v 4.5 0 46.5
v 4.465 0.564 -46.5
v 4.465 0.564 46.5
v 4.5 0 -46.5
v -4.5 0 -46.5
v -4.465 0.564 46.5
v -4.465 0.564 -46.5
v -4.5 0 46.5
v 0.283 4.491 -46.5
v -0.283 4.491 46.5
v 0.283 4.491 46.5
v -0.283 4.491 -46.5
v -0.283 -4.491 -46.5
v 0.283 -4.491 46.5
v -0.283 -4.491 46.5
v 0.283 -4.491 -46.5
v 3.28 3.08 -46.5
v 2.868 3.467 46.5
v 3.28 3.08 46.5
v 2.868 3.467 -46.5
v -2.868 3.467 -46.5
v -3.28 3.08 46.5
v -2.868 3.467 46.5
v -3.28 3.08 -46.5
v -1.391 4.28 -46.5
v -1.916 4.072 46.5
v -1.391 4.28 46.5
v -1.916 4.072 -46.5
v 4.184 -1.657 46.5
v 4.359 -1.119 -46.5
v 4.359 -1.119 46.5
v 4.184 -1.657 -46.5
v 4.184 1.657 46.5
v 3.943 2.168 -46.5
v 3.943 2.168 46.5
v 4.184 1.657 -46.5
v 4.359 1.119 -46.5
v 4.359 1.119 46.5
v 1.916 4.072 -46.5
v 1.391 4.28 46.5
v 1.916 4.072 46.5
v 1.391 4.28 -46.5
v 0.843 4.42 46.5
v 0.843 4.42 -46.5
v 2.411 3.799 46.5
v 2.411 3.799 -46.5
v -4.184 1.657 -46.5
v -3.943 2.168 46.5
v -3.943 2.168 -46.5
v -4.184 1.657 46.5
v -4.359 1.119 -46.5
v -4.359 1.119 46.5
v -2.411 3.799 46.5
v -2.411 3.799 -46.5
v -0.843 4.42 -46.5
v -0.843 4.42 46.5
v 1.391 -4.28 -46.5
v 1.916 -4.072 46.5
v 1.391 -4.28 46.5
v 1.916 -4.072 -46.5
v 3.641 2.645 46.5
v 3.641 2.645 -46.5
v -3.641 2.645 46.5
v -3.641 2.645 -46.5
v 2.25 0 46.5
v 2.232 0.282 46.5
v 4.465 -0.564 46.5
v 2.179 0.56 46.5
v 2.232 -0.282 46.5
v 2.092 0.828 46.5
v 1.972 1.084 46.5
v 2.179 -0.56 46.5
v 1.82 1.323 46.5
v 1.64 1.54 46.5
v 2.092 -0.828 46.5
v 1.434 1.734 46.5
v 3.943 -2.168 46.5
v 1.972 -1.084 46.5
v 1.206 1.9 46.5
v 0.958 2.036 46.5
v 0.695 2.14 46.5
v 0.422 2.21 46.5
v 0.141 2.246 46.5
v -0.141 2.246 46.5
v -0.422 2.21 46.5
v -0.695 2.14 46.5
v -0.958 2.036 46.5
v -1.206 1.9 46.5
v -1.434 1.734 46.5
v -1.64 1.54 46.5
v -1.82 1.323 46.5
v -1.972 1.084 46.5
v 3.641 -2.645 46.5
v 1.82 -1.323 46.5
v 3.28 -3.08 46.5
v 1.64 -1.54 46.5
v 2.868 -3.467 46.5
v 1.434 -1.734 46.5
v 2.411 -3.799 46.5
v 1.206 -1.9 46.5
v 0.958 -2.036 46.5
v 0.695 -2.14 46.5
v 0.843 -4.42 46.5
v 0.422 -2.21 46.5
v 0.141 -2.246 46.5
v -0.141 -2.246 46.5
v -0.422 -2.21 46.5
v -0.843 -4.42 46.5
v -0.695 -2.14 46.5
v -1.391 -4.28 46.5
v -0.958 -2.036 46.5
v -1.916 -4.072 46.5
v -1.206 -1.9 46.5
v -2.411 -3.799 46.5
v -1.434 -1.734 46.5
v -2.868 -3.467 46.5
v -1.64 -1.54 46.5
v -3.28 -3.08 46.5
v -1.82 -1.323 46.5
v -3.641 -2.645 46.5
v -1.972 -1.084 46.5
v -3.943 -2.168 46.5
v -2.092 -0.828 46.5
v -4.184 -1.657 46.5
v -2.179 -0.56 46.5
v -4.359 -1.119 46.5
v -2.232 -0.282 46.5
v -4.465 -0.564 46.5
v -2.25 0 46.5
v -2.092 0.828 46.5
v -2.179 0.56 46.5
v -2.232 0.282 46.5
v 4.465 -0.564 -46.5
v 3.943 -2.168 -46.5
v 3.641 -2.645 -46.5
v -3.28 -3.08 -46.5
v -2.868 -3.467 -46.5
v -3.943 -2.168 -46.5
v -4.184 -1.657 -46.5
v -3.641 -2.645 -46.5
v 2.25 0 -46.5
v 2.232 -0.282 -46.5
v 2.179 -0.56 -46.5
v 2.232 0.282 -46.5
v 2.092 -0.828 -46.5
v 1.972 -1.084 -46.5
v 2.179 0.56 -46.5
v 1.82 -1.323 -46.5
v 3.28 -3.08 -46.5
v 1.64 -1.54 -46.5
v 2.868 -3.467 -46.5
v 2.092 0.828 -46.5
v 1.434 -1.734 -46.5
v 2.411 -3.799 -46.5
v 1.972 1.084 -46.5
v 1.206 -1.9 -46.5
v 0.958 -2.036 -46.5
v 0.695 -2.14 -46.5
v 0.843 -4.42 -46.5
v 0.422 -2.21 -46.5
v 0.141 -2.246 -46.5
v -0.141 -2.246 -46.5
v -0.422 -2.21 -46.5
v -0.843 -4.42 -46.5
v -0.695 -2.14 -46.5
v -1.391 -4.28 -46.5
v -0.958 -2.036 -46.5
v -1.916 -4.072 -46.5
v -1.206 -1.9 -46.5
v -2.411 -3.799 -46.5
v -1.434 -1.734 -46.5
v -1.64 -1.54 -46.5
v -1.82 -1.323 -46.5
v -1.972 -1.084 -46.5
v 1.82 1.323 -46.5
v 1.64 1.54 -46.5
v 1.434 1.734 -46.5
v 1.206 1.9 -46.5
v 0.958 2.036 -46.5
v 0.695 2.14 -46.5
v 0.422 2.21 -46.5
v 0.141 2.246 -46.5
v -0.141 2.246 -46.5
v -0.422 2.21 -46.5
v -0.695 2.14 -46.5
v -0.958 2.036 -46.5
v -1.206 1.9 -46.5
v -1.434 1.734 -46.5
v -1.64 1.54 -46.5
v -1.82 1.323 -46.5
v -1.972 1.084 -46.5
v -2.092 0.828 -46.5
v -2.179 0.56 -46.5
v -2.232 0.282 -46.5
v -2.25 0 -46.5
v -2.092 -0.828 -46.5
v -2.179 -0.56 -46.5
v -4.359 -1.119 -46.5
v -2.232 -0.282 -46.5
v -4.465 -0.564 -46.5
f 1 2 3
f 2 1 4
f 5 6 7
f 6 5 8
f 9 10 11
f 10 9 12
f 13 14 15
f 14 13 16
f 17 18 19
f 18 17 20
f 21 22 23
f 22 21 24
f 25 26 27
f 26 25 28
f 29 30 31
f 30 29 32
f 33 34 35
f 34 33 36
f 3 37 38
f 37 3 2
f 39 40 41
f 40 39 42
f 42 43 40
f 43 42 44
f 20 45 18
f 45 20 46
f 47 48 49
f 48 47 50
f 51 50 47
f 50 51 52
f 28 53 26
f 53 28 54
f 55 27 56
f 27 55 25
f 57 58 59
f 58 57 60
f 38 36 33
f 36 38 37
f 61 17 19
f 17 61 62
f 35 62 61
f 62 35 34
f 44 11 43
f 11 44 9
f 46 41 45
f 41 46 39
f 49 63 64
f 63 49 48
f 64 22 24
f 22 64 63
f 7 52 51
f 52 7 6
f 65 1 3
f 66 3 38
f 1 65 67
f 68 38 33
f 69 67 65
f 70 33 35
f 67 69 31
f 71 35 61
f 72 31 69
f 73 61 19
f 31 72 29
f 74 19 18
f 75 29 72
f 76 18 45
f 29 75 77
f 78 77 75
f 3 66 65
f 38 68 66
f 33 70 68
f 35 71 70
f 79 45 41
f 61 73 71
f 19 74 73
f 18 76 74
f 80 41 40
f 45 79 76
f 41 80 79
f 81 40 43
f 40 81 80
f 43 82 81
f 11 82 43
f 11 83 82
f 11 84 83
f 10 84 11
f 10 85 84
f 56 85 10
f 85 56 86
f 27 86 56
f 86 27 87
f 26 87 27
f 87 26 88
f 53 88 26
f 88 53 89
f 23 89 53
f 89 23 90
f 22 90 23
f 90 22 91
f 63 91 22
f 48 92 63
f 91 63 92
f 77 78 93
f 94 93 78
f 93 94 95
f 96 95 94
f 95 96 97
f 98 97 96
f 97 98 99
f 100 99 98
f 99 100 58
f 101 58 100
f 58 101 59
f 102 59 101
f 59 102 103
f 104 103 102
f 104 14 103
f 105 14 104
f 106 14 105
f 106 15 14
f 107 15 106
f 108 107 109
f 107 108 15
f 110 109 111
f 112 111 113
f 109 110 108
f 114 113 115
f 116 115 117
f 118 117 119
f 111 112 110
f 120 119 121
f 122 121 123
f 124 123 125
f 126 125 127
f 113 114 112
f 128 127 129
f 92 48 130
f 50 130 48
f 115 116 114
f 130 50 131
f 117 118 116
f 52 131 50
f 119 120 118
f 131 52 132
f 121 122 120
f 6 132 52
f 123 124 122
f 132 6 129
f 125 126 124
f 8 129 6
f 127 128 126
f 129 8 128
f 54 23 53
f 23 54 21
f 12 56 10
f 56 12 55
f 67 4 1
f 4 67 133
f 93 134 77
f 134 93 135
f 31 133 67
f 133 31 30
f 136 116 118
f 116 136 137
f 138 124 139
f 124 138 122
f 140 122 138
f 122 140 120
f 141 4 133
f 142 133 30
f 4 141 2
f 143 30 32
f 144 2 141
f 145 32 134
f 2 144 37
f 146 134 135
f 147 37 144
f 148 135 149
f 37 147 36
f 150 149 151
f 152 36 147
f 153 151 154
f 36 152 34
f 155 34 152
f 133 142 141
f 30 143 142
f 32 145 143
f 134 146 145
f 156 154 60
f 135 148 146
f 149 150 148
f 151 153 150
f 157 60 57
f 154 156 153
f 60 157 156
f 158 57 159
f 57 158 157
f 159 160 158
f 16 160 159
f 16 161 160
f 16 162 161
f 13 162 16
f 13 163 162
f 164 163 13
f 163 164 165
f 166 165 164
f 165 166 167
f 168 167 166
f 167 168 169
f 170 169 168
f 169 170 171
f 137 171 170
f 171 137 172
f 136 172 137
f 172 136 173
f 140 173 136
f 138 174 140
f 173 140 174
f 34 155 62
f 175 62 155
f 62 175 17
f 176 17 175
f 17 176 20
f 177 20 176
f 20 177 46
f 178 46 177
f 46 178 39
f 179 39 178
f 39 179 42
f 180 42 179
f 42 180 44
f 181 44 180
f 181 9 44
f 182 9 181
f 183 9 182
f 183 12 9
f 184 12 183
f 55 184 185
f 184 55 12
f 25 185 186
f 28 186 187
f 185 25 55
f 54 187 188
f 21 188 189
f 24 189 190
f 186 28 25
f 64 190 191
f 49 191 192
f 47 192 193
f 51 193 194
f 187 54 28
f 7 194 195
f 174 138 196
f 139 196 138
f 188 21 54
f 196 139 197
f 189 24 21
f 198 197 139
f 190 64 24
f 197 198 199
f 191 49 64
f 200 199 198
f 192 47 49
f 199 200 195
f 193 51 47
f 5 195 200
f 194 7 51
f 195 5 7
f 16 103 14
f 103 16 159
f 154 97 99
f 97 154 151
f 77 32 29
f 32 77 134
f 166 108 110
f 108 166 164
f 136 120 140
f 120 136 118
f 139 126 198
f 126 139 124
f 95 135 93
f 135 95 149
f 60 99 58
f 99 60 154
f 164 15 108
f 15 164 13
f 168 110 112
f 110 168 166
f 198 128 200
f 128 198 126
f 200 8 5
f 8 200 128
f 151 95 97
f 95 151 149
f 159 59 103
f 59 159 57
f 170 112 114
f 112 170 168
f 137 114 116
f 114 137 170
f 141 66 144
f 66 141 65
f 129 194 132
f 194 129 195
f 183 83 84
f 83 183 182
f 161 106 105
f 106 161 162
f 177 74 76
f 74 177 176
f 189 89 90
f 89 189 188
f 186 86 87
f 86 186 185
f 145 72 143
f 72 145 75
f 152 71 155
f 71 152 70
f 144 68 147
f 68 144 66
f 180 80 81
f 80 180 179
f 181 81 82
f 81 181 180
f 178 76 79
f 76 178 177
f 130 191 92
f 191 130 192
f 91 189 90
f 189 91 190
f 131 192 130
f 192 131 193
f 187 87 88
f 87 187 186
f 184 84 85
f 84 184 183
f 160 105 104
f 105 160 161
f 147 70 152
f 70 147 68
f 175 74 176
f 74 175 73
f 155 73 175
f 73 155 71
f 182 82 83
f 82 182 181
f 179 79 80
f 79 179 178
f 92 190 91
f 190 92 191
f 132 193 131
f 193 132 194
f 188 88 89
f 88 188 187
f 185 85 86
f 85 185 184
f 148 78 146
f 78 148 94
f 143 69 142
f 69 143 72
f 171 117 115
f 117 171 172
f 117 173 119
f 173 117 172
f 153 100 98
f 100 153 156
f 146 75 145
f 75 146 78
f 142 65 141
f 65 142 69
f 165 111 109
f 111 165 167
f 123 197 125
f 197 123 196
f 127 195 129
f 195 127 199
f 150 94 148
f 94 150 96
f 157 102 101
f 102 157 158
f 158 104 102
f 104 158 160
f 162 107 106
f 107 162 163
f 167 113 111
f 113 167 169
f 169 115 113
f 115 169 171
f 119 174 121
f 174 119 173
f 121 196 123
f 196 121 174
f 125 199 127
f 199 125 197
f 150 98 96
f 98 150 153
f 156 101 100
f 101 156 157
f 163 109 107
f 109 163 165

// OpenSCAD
$fn = 50;


difference() {
	union() {
		translate(v = [0, 0, -46.5000000000]) {
			cylinder(h = 93, r = 4.5000000000);
		}
	}
	union() {
		translate(v = [0, 0, -100.0000000000]) {
			cylinder(h = 200, r = 2.2500000000);
		}
	}
}
